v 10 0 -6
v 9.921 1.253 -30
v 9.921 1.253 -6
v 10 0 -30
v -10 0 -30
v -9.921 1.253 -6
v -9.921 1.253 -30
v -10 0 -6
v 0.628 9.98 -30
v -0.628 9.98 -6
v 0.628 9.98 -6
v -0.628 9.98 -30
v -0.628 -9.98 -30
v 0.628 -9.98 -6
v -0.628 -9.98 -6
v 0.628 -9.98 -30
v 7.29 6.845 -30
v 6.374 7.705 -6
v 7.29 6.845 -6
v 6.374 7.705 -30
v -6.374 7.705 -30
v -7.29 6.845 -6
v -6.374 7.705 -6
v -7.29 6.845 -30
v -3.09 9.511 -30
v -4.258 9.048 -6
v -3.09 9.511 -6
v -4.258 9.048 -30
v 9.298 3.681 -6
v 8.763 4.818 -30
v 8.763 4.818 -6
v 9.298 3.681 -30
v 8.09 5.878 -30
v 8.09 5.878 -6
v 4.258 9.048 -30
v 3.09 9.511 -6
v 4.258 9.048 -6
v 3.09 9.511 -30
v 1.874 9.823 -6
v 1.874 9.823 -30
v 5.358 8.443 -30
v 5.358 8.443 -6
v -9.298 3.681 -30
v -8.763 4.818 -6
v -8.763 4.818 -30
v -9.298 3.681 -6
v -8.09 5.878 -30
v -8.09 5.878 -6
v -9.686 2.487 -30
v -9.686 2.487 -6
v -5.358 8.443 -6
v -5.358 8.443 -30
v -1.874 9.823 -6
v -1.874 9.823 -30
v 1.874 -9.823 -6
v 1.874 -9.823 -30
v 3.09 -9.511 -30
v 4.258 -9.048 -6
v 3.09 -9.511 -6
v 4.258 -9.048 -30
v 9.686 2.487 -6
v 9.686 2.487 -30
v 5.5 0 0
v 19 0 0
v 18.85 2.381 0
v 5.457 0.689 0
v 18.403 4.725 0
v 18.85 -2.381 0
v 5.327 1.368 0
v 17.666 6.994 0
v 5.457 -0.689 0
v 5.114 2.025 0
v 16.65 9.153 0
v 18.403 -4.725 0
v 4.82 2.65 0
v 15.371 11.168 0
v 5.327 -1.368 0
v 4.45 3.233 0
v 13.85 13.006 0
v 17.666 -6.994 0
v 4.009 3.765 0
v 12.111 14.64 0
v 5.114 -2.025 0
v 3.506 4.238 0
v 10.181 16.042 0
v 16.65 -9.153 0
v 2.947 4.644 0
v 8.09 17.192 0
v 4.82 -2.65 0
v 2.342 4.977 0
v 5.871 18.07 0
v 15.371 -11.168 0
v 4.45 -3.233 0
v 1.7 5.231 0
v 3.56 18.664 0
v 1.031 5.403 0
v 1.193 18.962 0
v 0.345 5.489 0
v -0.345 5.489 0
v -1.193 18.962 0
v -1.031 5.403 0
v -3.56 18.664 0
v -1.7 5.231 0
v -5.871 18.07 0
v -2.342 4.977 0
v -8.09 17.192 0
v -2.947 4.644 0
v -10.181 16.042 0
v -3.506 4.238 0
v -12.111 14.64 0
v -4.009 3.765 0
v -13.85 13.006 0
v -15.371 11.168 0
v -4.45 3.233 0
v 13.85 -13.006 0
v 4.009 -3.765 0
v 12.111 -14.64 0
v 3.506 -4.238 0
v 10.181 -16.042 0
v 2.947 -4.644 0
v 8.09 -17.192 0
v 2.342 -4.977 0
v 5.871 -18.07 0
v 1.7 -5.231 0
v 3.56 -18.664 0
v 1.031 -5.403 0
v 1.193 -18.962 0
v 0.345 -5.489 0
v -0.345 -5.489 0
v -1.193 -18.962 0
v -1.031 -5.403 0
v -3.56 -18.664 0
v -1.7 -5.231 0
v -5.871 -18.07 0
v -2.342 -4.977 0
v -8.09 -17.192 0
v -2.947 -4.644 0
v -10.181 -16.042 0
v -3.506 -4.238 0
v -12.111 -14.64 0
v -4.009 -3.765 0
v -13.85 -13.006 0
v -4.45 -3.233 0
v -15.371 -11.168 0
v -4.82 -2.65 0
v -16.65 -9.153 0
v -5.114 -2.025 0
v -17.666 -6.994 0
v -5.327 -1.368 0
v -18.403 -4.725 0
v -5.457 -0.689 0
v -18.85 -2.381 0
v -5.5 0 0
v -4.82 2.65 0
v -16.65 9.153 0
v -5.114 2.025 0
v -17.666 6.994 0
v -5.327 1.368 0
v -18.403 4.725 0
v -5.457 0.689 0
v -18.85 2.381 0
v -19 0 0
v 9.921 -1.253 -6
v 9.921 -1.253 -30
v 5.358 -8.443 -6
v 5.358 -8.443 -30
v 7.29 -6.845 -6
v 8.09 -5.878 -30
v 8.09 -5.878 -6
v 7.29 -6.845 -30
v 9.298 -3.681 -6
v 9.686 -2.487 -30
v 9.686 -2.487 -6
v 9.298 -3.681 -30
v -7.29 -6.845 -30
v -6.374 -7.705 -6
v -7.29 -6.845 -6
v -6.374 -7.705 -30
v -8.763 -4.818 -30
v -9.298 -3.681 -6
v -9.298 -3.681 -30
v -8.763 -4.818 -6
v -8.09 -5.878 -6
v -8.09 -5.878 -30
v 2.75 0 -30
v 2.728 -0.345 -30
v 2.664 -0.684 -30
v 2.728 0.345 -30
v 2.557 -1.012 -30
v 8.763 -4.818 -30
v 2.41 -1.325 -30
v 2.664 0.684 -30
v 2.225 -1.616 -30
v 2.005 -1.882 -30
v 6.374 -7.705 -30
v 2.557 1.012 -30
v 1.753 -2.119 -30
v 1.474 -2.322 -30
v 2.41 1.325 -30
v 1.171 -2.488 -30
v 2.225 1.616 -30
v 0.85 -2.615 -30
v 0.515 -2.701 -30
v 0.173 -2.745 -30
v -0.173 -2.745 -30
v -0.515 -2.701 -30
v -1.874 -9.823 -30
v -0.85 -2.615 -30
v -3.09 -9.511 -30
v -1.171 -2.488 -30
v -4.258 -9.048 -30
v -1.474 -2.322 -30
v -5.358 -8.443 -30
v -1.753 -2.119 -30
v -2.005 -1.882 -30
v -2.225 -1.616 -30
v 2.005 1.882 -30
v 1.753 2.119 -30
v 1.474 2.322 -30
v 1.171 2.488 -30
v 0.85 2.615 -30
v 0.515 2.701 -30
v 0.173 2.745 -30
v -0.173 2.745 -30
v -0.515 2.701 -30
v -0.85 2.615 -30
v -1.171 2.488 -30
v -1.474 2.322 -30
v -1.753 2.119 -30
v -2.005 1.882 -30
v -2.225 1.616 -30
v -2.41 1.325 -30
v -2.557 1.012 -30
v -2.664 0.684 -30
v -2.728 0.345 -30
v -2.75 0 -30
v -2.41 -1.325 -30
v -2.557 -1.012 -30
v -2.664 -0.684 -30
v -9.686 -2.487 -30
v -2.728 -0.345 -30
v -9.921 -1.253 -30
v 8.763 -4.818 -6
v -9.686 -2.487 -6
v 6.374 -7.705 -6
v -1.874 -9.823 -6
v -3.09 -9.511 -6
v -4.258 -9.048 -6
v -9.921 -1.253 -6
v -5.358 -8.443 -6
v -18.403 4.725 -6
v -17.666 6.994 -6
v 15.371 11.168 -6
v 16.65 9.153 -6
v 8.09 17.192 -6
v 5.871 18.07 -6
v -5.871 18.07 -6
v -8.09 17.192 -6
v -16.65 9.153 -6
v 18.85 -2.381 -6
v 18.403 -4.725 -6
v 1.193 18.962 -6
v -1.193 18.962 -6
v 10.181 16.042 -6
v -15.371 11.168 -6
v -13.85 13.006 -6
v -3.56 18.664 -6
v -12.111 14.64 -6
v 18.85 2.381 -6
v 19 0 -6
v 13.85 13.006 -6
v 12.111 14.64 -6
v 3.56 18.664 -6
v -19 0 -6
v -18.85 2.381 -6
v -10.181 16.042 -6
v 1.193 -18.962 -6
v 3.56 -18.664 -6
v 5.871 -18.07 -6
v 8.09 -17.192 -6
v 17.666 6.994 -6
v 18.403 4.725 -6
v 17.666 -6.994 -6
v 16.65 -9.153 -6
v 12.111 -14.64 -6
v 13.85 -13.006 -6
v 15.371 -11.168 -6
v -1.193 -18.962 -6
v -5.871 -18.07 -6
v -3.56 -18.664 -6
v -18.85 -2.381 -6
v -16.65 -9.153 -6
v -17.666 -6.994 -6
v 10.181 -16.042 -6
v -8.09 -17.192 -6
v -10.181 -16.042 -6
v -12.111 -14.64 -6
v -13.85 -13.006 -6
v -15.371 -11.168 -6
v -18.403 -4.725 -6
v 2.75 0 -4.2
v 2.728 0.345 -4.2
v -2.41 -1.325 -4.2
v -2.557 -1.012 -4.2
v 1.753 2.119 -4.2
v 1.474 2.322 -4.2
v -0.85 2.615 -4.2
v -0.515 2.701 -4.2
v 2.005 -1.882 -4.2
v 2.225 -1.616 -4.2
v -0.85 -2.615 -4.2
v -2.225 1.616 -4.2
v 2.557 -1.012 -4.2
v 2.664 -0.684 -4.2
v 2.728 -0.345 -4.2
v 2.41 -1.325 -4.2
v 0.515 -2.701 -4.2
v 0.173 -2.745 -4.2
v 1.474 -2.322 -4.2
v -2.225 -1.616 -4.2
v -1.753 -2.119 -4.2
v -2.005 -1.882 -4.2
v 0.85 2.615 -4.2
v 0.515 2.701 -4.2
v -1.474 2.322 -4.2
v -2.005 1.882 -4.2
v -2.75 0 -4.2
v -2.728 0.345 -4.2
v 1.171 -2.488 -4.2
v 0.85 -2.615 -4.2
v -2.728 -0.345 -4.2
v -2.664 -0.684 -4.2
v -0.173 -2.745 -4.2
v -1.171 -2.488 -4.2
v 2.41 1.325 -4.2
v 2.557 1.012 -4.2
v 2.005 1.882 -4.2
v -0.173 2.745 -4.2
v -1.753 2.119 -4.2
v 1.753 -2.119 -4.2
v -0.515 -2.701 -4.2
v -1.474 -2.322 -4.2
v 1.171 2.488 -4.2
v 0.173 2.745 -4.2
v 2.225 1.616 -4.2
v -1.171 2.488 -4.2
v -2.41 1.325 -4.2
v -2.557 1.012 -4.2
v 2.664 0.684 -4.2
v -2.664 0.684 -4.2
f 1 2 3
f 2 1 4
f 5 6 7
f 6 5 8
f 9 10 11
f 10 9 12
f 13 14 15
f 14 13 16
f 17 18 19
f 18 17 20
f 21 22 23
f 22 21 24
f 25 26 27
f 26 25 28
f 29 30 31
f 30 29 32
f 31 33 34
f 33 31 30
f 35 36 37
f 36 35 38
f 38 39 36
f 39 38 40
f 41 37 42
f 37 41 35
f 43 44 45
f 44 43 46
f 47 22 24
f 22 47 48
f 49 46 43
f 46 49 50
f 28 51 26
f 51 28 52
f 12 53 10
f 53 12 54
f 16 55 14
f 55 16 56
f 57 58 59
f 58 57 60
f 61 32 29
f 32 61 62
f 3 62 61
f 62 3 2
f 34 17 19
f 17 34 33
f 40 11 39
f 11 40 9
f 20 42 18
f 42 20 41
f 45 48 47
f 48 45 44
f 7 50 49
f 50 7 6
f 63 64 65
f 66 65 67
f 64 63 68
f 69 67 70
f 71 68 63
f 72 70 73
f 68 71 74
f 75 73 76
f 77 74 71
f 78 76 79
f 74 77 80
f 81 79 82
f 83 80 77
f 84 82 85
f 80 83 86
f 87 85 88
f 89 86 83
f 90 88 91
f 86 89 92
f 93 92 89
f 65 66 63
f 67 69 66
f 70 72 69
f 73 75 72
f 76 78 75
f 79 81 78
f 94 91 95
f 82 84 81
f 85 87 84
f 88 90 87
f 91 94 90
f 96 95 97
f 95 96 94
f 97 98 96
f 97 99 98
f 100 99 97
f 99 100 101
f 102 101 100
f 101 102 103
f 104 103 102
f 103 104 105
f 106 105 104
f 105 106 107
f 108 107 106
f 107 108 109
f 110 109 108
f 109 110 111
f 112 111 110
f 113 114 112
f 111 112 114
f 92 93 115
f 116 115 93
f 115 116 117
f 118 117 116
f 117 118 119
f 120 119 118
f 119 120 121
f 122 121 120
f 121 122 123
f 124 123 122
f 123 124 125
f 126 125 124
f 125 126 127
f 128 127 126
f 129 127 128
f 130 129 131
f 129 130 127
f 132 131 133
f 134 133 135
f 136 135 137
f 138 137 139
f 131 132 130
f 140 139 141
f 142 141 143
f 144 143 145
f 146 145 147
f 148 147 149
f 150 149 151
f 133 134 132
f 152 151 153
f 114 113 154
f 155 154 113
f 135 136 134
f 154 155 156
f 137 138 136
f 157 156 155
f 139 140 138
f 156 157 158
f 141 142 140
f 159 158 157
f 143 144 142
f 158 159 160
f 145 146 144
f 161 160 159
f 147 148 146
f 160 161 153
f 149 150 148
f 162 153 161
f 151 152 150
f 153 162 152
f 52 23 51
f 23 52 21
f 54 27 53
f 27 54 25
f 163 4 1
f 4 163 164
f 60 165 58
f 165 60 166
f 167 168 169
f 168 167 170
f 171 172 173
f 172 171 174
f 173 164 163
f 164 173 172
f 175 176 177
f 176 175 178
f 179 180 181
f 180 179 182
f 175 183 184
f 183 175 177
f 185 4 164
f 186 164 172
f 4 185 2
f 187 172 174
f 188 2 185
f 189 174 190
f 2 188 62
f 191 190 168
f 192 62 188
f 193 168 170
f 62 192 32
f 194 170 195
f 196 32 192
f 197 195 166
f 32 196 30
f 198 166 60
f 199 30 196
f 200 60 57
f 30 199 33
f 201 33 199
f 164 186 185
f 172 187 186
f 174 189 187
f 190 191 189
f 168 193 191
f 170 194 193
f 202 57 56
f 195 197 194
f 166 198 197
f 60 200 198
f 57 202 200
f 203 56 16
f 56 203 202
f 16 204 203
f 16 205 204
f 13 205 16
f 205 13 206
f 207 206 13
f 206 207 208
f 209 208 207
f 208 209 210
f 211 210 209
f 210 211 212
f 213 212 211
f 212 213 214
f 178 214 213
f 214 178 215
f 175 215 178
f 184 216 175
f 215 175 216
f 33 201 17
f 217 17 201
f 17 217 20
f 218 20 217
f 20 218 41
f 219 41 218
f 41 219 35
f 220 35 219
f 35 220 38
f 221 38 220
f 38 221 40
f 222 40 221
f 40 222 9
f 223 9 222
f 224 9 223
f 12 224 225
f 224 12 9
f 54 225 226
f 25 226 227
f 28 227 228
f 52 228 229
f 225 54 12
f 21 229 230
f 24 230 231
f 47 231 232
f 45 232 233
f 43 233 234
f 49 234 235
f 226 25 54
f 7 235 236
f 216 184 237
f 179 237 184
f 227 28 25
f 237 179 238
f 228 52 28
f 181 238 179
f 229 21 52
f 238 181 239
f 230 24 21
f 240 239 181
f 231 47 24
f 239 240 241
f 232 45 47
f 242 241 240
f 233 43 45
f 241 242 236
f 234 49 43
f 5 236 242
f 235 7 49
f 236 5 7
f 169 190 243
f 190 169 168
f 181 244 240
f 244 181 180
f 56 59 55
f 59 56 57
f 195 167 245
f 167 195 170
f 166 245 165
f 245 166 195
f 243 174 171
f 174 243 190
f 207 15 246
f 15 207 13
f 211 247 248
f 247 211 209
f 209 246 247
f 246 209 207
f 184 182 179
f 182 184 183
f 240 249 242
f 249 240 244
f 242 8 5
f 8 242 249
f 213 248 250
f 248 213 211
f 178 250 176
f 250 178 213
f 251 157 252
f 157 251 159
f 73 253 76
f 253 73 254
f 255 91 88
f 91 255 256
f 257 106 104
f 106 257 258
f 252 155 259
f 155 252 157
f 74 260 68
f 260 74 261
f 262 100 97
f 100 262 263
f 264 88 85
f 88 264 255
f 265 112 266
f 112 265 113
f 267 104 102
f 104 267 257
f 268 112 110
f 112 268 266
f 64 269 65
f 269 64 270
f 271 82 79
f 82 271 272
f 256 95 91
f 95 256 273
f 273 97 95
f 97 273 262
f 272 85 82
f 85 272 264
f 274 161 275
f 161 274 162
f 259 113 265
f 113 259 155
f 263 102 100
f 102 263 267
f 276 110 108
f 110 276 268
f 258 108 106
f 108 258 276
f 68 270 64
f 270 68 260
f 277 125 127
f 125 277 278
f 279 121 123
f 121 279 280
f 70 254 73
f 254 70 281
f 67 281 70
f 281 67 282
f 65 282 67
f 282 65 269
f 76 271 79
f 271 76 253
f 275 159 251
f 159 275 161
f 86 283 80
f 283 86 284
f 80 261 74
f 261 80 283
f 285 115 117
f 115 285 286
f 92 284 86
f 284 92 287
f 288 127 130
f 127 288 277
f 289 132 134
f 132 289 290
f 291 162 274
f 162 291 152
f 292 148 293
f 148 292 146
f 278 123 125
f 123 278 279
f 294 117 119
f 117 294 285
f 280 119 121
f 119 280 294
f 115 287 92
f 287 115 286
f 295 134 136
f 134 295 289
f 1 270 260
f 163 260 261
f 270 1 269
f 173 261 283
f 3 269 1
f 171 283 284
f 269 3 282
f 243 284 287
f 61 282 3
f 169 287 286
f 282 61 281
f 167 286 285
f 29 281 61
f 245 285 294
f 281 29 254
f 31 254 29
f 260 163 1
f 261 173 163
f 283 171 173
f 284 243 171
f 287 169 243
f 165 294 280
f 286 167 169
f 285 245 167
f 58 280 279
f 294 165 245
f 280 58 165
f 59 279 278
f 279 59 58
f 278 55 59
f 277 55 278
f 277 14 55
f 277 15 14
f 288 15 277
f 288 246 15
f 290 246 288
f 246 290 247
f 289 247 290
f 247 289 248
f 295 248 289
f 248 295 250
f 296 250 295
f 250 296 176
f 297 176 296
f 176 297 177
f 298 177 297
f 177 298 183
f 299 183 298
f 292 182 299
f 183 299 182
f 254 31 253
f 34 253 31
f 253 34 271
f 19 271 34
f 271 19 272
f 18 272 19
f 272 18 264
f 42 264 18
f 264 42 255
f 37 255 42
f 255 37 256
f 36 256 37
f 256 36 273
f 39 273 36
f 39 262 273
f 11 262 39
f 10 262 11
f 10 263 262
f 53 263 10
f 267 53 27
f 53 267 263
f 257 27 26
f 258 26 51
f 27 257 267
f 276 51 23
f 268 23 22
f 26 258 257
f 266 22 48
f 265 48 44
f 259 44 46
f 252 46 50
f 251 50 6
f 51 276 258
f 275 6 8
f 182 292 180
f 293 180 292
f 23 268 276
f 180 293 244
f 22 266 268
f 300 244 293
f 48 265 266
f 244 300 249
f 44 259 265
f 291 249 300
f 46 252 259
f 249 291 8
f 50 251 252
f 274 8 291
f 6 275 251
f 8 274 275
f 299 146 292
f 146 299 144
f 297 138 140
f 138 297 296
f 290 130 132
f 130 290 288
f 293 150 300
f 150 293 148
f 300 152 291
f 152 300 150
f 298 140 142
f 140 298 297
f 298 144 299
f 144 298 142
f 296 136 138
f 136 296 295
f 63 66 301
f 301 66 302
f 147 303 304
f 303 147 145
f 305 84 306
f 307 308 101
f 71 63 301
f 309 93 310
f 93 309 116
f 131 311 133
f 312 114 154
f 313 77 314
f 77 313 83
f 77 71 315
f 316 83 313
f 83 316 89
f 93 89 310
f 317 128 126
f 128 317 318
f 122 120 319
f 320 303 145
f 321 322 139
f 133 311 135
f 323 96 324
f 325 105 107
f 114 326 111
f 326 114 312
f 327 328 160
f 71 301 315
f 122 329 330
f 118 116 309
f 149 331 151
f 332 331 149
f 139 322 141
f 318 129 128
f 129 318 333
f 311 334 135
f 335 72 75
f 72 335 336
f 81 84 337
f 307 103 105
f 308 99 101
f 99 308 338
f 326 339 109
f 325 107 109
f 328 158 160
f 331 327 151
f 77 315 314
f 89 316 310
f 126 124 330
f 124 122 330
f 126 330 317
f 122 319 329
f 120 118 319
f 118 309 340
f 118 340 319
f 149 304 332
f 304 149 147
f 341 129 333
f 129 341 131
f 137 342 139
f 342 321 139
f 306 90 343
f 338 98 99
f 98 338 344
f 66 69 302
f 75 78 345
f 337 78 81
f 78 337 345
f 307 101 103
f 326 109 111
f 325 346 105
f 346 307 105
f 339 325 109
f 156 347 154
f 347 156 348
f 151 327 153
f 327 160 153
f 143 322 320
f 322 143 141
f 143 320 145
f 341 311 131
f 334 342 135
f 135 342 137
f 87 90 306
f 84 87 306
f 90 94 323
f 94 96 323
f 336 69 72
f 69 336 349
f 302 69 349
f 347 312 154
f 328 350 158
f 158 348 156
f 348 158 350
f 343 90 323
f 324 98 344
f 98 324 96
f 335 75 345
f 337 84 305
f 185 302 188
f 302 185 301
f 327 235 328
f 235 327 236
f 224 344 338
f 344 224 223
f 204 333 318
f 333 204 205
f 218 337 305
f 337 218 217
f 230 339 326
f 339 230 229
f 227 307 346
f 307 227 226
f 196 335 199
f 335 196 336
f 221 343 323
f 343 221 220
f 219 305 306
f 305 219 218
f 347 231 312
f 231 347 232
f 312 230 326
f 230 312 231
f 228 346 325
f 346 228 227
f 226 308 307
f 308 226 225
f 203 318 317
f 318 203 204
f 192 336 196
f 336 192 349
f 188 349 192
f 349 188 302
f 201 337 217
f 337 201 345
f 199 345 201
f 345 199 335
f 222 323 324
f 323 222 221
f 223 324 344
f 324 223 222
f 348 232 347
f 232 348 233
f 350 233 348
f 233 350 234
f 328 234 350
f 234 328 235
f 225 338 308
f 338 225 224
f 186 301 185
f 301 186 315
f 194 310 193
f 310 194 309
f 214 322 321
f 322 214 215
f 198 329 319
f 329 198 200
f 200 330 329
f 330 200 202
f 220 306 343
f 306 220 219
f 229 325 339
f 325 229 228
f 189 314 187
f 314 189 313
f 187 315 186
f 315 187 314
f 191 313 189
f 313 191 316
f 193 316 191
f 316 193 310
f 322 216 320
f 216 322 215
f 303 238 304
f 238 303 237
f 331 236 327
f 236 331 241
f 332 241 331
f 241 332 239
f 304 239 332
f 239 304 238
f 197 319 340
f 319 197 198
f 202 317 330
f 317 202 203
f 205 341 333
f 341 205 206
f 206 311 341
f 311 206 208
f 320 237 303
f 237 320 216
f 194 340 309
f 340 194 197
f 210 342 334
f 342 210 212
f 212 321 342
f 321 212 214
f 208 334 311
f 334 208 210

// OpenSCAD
$fn = 50;


difference() {
	union() {
		translate(v = [0, 0, -30.0000000000]) {
			cylinder(h = 30, r = 10.0000000000);
		}
		translate(v = [0, 0, -6.0000000000]) {
			cylinder(h = 6, r = 19.0000000000);
		}
	}
	union() {
		translate(v = [0, 0, 0]) {
			rotate(a = [0, 0, 0]) {
				difference() {
					union() {
						#translate(v = [0, 0, -30.0000000000]) {
							cylinder(h = 30, r = 2.2500000000);
						}
						#translate(v = [0, 0, -4.2000000000]) {
							cylinder(h = 4.2000000000, r1 = 2.7500000000, r2 = 5.5000000000);
						}
						#translate(v = [0, 0, -30.0000000000]) {
							cylinder(h = 30, r = 2.7500000000);
						}
						#translate(v = [0, 0, -30.0000000000]) {
							cylinder(h = 30, r = 2.2500000000);
						}
					}
					union();
				}
			}
		}
	}
}
